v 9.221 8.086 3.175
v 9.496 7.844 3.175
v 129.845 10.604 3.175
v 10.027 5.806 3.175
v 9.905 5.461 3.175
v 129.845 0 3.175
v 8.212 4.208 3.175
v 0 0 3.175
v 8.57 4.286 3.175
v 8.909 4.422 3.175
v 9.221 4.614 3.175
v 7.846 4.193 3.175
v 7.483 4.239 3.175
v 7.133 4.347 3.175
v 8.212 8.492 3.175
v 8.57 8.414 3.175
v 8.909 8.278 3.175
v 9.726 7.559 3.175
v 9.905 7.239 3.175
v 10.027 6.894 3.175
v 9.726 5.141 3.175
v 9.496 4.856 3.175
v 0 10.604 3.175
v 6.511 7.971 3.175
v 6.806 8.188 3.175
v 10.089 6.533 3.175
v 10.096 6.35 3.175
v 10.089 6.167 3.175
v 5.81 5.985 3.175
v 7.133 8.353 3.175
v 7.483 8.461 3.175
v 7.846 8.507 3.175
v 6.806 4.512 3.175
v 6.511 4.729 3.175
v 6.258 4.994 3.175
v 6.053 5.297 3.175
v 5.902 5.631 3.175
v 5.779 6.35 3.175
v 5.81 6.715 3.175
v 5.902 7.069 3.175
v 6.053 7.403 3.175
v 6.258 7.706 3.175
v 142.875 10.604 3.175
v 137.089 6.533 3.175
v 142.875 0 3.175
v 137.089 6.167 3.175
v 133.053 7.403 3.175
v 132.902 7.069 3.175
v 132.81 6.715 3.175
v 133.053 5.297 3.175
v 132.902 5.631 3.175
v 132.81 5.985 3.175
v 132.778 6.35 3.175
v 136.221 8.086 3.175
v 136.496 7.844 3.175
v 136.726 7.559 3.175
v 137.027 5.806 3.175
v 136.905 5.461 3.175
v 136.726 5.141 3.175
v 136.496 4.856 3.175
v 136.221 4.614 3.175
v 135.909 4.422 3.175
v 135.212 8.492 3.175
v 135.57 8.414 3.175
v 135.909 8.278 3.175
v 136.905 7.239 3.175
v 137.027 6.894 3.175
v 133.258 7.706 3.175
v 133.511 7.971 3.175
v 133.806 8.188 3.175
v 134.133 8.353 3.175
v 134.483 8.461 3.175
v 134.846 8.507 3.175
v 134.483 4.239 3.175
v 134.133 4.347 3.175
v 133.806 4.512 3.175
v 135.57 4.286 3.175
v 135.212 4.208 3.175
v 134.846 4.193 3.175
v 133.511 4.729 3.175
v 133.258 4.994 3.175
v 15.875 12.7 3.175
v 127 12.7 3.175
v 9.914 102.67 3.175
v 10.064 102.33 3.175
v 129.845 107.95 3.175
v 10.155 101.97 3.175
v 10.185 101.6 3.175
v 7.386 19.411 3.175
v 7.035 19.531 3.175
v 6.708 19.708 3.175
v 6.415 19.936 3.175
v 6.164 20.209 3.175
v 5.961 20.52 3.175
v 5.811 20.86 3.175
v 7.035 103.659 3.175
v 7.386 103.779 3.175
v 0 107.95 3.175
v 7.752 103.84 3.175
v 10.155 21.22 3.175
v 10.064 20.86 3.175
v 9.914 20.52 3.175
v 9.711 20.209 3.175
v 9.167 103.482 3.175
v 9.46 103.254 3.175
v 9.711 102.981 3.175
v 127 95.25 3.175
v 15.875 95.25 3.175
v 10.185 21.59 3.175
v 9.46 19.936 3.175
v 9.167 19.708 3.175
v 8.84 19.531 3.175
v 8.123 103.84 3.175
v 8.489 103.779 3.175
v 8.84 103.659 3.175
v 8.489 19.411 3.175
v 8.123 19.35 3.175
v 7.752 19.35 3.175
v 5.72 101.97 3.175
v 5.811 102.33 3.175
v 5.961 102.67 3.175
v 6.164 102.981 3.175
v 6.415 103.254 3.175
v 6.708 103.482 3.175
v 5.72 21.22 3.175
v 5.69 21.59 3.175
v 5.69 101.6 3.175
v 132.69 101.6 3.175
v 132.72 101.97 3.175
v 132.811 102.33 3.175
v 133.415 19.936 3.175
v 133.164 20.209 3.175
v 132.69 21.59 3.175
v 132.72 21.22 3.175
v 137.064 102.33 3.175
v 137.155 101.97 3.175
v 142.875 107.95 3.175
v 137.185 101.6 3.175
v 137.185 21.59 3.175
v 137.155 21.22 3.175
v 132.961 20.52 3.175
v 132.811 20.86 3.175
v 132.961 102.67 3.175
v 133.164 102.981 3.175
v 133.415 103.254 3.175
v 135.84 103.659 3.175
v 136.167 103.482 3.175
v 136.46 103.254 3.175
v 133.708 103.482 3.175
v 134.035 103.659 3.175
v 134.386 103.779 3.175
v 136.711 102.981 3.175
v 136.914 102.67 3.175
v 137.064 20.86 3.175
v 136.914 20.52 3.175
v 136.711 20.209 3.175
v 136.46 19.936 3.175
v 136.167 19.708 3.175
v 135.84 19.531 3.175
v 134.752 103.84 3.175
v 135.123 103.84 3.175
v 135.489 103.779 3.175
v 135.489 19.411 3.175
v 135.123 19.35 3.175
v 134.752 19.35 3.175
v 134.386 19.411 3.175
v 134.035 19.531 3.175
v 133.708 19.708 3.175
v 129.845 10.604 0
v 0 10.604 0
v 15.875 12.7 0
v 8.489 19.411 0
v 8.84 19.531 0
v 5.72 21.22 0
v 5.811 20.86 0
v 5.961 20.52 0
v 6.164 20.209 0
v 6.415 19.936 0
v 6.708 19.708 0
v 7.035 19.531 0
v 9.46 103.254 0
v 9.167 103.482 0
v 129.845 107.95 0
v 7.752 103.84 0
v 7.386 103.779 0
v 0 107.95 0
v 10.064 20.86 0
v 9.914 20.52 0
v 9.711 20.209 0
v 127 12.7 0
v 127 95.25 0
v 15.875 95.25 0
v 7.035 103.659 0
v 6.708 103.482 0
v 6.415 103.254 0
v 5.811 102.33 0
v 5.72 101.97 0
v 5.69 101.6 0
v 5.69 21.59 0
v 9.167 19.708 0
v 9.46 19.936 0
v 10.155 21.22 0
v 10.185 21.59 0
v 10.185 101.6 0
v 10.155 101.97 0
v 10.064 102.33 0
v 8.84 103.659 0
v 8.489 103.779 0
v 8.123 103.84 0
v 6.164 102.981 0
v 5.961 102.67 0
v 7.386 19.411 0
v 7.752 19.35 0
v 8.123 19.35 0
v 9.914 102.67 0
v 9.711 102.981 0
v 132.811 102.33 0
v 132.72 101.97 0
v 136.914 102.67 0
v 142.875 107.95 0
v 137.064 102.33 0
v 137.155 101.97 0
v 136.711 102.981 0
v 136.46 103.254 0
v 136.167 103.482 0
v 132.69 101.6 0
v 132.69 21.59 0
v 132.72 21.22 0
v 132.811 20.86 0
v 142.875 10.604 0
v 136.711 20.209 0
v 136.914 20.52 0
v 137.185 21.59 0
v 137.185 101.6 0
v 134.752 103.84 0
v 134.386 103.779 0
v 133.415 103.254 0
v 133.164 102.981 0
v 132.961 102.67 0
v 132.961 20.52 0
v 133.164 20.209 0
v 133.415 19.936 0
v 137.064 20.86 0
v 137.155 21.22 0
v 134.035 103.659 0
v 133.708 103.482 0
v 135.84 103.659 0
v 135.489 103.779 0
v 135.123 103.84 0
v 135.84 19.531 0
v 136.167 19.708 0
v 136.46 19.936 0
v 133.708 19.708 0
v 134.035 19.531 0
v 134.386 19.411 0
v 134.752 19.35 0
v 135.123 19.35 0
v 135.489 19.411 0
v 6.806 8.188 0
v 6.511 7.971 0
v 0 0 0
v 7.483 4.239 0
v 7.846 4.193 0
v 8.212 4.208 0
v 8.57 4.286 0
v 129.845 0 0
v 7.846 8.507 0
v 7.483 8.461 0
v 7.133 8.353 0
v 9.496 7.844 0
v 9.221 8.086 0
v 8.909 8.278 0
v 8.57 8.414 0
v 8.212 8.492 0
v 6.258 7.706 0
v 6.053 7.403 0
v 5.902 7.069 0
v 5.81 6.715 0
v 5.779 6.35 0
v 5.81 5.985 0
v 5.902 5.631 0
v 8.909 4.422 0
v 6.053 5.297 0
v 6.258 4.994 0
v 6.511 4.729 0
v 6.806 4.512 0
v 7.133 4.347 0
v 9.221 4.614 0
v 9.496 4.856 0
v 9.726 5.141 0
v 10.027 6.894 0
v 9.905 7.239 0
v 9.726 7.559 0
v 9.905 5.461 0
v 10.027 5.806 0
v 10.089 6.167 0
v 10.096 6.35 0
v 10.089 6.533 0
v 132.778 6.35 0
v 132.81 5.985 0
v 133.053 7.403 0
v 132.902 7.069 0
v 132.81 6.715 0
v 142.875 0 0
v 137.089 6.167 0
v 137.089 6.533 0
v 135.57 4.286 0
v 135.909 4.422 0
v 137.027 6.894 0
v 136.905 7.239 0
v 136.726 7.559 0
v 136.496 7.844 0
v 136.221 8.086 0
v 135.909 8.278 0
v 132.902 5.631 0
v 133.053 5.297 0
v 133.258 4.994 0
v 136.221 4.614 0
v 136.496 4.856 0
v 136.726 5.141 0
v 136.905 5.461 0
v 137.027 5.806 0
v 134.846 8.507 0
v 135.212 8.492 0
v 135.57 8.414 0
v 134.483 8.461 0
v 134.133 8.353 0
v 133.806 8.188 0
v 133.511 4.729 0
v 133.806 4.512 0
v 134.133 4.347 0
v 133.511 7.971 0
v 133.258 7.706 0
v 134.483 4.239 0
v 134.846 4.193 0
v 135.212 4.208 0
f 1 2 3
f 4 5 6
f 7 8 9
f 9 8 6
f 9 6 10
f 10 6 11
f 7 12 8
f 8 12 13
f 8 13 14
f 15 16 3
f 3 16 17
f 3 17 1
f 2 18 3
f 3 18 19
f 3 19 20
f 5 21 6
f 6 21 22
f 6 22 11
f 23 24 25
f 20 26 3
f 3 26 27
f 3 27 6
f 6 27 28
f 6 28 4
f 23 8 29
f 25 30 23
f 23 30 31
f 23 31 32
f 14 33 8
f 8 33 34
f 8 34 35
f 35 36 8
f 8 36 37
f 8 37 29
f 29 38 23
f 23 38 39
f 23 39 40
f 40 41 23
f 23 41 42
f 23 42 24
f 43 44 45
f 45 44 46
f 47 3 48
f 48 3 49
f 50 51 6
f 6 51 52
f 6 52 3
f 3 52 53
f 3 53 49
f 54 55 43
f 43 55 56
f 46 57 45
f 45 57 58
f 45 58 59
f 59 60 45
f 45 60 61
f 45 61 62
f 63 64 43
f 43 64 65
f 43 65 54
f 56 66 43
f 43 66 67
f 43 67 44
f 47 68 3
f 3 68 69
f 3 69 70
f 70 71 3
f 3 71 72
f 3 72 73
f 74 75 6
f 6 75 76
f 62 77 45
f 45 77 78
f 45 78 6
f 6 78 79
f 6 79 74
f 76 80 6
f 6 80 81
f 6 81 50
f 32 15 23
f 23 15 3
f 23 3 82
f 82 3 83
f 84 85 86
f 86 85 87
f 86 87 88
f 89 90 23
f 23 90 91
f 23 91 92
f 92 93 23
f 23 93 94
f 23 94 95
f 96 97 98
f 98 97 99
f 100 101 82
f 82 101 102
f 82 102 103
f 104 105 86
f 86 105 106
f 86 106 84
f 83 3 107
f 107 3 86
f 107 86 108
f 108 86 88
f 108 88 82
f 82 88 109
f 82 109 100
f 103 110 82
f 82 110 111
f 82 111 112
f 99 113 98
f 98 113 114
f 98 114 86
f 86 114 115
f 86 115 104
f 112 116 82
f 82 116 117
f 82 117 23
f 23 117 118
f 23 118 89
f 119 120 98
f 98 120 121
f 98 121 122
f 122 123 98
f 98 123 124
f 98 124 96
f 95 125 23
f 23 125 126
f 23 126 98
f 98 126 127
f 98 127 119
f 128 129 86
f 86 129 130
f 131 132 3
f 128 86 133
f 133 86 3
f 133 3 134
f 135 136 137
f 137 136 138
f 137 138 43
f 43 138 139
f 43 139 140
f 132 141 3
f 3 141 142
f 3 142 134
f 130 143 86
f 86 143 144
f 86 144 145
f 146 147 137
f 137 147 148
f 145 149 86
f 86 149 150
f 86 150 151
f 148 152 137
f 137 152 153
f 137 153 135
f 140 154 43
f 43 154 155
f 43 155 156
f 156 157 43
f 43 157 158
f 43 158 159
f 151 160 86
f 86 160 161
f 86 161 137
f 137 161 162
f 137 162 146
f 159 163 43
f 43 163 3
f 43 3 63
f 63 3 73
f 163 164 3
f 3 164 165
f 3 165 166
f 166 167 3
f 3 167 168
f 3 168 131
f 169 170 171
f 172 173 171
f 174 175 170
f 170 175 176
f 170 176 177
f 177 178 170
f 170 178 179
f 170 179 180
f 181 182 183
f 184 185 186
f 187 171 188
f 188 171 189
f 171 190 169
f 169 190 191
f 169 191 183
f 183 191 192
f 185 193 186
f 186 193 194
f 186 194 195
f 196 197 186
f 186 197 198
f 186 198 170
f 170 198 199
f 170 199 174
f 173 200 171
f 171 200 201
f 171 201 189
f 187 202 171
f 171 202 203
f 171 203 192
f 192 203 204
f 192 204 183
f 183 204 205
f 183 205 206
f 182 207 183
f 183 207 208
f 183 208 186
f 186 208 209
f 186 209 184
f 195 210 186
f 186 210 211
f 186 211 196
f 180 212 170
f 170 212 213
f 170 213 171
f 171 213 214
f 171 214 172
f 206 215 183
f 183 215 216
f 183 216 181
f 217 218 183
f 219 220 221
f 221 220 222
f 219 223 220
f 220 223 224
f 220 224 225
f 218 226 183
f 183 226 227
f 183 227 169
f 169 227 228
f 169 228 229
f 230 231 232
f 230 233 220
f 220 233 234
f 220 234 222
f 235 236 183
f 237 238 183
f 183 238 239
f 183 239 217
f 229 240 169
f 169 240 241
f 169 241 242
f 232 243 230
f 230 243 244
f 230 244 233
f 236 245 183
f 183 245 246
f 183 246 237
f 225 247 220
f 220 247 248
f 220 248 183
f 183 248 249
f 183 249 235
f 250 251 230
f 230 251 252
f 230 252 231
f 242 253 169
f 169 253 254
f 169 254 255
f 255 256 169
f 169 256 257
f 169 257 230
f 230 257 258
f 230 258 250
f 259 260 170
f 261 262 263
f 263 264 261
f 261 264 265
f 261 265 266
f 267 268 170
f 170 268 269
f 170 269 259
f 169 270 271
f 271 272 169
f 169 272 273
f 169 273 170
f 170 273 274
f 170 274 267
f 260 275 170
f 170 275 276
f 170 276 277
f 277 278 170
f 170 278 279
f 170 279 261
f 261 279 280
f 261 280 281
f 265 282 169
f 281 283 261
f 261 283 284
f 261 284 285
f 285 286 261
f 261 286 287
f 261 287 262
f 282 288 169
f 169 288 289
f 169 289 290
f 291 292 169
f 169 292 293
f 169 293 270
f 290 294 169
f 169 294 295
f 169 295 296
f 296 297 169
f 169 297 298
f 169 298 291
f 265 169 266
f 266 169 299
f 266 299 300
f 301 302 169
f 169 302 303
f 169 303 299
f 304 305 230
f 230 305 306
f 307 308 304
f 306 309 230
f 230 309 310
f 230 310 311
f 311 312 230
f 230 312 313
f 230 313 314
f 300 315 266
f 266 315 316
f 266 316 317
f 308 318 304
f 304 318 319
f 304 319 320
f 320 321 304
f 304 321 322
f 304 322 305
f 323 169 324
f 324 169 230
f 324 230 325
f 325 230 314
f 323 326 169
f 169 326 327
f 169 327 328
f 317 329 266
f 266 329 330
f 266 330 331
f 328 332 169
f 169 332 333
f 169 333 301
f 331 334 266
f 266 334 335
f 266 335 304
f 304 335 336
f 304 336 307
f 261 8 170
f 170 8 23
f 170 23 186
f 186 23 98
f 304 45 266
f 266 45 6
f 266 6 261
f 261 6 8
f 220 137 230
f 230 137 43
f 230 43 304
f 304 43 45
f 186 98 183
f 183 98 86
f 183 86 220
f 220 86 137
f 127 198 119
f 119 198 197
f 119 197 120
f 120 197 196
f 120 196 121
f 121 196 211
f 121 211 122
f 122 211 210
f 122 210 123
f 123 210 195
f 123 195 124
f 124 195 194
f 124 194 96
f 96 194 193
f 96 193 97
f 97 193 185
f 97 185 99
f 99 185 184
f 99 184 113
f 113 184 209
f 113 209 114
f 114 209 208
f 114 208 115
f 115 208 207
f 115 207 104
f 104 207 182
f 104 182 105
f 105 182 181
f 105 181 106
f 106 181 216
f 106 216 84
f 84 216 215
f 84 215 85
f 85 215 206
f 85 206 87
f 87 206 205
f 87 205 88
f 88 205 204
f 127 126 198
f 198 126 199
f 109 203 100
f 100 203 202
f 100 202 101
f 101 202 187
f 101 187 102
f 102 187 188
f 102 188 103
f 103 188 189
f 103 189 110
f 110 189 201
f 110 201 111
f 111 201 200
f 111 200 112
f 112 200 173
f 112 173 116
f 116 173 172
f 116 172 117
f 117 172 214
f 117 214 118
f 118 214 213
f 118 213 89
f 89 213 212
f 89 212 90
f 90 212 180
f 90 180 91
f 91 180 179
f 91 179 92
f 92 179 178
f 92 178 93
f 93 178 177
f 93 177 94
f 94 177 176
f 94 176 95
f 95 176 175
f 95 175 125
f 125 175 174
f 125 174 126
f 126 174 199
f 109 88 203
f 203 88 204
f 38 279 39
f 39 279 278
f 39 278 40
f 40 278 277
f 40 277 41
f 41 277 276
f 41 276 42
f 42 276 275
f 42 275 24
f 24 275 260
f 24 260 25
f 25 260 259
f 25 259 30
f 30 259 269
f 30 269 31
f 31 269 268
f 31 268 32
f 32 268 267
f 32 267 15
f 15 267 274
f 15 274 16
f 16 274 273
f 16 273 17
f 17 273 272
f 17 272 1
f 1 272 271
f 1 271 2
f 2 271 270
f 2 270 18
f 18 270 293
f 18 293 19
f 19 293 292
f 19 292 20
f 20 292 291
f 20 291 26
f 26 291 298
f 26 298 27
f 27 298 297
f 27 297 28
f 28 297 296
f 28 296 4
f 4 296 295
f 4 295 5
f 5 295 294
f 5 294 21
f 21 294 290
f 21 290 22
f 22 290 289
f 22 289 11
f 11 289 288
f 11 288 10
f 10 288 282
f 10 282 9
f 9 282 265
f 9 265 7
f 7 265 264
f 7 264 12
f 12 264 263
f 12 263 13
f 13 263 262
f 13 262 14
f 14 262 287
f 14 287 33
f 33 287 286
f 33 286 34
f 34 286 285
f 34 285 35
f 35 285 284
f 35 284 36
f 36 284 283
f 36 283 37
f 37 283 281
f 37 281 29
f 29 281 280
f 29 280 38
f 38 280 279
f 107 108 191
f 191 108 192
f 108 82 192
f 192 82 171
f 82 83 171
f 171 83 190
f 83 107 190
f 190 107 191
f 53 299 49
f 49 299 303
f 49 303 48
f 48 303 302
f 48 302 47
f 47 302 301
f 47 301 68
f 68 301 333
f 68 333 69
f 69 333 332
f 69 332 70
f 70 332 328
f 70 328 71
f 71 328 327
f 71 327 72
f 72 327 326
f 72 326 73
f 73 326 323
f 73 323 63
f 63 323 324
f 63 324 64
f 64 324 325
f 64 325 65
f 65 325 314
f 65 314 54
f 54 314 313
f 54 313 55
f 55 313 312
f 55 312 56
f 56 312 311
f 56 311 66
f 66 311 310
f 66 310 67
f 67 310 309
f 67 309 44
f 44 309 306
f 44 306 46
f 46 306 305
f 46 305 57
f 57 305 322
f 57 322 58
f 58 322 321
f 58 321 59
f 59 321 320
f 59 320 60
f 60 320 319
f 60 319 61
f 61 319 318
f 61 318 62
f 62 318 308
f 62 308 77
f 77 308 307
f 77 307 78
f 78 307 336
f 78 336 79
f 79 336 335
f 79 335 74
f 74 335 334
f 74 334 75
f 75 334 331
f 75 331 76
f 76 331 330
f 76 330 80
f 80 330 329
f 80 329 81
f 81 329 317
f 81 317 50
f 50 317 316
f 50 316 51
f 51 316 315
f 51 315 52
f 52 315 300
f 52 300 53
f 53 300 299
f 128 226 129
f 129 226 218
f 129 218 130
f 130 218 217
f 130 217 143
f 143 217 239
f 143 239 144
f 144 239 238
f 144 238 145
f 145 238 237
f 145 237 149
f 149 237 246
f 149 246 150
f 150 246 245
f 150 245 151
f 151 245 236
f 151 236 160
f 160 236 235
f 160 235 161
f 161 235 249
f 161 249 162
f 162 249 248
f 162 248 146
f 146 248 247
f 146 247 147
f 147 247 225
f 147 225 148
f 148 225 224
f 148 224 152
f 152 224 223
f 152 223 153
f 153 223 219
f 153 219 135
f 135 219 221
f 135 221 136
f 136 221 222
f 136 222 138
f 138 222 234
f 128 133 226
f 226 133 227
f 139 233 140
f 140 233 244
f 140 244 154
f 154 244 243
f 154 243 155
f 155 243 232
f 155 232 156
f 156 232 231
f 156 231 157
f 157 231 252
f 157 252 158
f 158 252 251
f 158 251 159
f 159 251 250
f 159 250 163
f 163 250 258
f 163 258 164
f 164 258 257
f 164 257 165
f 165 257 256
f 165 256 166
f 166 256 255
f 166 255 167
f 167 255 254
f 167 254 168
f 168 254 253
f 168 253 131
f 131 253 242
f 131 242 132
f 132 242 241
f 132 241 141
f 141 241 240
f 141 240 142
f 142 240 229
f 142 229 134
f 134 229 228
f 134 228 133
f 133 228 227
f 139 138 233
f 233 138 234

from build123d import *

# Parameters (mm, degrees)
SKETCH1_R           = 2.159
SKETCH1_W           = 111.125
SKETCH1_H           = 82.55
BOSS_EXTRUDE1_DEPTH = 3.175


with BuildPart() as part:
    # Sketch1 → Boss-Extrude1 (new body)
    with BuildSketch(Plane.XY):
        Polygon((0, 0), (15.875, 0), (127, 0), (142.875, 0), (142.875, 107.95), (127, 107.95), (15.875, 107.95), (0, 107.95), align=None)
        with Locations((7.9375, 6.35)):
            Circle(SKETCH1_R, mode=Mode.SUBTRACT)
        with Locations((134.9375, 6.35)):
            Circle(SKETCH1_R, mode=Mode.SUBTRACT)
        with BuildLine():
            Line((10.1854, 101.6), (10.1854, 21.59))
            ThreePointArc((10.1854, 21.59), (7.9375, 19.3421), (5.6896, 21.59))
            Line((5.6896, 21.59), (5.6896, 101.6))
            ThreePointArc((5.6896, 101.6), (7.9375, 103.8479), (10.1854, 101.6))
        make_face(mode=Mode.SUBTRACT)
        with Locations((71.4375, 53.975)):
            Rectangle(SKETCH1_W, SKETCH1_H, mode=Mode.SUBTRACT)
        with BuildLine():
            Line((132.6896, 101.6), (132.6896, 21.59))
            ThreePointArc((132.6896, 21.59), (134.9375, 19.3421), (137.1854, 21.59))
            Line((137.1854, 21.59), (137.1854, 101.6))
            ThreePointArc((137.1854, 101.6), (134.9375, 103.8479), (132.6896, 101.6))
        make_face(mode=Mode.SUBTRACT)
    extrude(amount=BOSS_EXTRUDE1_DEPTH)


solid = part.part
